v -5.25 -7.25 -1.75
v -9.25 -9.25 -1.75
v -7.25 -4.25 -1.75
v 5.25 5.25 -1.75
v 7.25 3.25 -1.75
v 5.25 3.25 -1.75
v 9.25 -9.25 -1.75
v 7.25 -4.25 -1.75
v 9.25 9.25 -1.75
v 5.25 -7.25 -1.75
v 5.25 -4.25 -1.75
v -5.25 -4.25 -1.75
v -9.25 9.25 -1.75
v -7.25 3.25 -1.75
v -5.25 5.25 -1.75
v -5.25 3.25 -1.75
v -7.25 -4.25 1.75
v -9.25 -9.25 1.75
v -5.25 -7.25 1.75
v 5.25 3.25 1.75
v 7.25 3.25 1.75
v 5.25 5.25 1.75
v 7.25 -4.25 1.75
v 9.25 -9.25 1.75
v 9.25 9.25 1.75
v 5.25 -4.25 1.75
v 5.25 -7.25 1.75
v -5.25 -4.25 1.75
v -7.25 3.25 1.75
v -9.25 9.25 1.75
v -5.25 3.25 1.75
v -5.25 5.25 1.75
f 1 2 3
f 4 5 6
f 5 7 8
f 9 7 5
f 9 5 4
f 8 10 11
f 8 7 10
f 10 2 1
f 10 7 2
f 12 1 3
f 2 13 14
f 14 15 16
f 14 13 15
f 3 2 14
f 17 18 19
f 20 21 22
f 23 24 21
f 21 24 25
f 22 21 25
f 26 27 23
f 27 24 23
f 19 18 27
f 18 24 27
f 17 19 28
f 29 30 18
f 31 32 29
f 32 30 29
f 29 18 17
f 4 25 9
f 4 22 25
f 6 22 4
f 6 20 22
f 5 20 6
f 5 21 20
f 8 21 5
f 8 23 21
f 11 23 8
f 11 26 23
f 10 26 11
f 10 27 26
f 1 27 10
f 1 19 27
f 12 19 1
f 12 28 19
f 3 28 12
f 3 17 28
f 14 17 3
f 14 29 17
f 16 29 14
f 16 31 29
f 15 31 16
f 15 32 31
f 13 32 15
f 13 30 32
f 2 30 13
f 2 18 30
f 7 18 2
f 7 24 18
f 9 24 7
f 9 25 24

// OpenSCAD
// cherry-mx-lockout.scad
// lockout for 1U cherry mx switches
// (C) 2020
// cy384
// licensed under the GPL v2, see LICENSE file

module lockout_shape()
{
	difference()
	{
		union()
		{
			difference()
			{
				square([18.5, 18.5], center=true);
				square([14.5, 14.5], center=true);
			}
			
			for(i=[-6.25, 6.25], j=[-6.25, 6.25])
			{
				translate([i, j]) { square([2, 4], center=true); }
				translate([i, 4.25]) { square([2, 2], center=true); }
			}
		}
		
		rotate([0, 0, 45]) { square([18.5, 18.5], center=false); }
	}
}

linear_extrude(height=3.5, center=true, convexity=6)
{
	lockout_shape();
}
